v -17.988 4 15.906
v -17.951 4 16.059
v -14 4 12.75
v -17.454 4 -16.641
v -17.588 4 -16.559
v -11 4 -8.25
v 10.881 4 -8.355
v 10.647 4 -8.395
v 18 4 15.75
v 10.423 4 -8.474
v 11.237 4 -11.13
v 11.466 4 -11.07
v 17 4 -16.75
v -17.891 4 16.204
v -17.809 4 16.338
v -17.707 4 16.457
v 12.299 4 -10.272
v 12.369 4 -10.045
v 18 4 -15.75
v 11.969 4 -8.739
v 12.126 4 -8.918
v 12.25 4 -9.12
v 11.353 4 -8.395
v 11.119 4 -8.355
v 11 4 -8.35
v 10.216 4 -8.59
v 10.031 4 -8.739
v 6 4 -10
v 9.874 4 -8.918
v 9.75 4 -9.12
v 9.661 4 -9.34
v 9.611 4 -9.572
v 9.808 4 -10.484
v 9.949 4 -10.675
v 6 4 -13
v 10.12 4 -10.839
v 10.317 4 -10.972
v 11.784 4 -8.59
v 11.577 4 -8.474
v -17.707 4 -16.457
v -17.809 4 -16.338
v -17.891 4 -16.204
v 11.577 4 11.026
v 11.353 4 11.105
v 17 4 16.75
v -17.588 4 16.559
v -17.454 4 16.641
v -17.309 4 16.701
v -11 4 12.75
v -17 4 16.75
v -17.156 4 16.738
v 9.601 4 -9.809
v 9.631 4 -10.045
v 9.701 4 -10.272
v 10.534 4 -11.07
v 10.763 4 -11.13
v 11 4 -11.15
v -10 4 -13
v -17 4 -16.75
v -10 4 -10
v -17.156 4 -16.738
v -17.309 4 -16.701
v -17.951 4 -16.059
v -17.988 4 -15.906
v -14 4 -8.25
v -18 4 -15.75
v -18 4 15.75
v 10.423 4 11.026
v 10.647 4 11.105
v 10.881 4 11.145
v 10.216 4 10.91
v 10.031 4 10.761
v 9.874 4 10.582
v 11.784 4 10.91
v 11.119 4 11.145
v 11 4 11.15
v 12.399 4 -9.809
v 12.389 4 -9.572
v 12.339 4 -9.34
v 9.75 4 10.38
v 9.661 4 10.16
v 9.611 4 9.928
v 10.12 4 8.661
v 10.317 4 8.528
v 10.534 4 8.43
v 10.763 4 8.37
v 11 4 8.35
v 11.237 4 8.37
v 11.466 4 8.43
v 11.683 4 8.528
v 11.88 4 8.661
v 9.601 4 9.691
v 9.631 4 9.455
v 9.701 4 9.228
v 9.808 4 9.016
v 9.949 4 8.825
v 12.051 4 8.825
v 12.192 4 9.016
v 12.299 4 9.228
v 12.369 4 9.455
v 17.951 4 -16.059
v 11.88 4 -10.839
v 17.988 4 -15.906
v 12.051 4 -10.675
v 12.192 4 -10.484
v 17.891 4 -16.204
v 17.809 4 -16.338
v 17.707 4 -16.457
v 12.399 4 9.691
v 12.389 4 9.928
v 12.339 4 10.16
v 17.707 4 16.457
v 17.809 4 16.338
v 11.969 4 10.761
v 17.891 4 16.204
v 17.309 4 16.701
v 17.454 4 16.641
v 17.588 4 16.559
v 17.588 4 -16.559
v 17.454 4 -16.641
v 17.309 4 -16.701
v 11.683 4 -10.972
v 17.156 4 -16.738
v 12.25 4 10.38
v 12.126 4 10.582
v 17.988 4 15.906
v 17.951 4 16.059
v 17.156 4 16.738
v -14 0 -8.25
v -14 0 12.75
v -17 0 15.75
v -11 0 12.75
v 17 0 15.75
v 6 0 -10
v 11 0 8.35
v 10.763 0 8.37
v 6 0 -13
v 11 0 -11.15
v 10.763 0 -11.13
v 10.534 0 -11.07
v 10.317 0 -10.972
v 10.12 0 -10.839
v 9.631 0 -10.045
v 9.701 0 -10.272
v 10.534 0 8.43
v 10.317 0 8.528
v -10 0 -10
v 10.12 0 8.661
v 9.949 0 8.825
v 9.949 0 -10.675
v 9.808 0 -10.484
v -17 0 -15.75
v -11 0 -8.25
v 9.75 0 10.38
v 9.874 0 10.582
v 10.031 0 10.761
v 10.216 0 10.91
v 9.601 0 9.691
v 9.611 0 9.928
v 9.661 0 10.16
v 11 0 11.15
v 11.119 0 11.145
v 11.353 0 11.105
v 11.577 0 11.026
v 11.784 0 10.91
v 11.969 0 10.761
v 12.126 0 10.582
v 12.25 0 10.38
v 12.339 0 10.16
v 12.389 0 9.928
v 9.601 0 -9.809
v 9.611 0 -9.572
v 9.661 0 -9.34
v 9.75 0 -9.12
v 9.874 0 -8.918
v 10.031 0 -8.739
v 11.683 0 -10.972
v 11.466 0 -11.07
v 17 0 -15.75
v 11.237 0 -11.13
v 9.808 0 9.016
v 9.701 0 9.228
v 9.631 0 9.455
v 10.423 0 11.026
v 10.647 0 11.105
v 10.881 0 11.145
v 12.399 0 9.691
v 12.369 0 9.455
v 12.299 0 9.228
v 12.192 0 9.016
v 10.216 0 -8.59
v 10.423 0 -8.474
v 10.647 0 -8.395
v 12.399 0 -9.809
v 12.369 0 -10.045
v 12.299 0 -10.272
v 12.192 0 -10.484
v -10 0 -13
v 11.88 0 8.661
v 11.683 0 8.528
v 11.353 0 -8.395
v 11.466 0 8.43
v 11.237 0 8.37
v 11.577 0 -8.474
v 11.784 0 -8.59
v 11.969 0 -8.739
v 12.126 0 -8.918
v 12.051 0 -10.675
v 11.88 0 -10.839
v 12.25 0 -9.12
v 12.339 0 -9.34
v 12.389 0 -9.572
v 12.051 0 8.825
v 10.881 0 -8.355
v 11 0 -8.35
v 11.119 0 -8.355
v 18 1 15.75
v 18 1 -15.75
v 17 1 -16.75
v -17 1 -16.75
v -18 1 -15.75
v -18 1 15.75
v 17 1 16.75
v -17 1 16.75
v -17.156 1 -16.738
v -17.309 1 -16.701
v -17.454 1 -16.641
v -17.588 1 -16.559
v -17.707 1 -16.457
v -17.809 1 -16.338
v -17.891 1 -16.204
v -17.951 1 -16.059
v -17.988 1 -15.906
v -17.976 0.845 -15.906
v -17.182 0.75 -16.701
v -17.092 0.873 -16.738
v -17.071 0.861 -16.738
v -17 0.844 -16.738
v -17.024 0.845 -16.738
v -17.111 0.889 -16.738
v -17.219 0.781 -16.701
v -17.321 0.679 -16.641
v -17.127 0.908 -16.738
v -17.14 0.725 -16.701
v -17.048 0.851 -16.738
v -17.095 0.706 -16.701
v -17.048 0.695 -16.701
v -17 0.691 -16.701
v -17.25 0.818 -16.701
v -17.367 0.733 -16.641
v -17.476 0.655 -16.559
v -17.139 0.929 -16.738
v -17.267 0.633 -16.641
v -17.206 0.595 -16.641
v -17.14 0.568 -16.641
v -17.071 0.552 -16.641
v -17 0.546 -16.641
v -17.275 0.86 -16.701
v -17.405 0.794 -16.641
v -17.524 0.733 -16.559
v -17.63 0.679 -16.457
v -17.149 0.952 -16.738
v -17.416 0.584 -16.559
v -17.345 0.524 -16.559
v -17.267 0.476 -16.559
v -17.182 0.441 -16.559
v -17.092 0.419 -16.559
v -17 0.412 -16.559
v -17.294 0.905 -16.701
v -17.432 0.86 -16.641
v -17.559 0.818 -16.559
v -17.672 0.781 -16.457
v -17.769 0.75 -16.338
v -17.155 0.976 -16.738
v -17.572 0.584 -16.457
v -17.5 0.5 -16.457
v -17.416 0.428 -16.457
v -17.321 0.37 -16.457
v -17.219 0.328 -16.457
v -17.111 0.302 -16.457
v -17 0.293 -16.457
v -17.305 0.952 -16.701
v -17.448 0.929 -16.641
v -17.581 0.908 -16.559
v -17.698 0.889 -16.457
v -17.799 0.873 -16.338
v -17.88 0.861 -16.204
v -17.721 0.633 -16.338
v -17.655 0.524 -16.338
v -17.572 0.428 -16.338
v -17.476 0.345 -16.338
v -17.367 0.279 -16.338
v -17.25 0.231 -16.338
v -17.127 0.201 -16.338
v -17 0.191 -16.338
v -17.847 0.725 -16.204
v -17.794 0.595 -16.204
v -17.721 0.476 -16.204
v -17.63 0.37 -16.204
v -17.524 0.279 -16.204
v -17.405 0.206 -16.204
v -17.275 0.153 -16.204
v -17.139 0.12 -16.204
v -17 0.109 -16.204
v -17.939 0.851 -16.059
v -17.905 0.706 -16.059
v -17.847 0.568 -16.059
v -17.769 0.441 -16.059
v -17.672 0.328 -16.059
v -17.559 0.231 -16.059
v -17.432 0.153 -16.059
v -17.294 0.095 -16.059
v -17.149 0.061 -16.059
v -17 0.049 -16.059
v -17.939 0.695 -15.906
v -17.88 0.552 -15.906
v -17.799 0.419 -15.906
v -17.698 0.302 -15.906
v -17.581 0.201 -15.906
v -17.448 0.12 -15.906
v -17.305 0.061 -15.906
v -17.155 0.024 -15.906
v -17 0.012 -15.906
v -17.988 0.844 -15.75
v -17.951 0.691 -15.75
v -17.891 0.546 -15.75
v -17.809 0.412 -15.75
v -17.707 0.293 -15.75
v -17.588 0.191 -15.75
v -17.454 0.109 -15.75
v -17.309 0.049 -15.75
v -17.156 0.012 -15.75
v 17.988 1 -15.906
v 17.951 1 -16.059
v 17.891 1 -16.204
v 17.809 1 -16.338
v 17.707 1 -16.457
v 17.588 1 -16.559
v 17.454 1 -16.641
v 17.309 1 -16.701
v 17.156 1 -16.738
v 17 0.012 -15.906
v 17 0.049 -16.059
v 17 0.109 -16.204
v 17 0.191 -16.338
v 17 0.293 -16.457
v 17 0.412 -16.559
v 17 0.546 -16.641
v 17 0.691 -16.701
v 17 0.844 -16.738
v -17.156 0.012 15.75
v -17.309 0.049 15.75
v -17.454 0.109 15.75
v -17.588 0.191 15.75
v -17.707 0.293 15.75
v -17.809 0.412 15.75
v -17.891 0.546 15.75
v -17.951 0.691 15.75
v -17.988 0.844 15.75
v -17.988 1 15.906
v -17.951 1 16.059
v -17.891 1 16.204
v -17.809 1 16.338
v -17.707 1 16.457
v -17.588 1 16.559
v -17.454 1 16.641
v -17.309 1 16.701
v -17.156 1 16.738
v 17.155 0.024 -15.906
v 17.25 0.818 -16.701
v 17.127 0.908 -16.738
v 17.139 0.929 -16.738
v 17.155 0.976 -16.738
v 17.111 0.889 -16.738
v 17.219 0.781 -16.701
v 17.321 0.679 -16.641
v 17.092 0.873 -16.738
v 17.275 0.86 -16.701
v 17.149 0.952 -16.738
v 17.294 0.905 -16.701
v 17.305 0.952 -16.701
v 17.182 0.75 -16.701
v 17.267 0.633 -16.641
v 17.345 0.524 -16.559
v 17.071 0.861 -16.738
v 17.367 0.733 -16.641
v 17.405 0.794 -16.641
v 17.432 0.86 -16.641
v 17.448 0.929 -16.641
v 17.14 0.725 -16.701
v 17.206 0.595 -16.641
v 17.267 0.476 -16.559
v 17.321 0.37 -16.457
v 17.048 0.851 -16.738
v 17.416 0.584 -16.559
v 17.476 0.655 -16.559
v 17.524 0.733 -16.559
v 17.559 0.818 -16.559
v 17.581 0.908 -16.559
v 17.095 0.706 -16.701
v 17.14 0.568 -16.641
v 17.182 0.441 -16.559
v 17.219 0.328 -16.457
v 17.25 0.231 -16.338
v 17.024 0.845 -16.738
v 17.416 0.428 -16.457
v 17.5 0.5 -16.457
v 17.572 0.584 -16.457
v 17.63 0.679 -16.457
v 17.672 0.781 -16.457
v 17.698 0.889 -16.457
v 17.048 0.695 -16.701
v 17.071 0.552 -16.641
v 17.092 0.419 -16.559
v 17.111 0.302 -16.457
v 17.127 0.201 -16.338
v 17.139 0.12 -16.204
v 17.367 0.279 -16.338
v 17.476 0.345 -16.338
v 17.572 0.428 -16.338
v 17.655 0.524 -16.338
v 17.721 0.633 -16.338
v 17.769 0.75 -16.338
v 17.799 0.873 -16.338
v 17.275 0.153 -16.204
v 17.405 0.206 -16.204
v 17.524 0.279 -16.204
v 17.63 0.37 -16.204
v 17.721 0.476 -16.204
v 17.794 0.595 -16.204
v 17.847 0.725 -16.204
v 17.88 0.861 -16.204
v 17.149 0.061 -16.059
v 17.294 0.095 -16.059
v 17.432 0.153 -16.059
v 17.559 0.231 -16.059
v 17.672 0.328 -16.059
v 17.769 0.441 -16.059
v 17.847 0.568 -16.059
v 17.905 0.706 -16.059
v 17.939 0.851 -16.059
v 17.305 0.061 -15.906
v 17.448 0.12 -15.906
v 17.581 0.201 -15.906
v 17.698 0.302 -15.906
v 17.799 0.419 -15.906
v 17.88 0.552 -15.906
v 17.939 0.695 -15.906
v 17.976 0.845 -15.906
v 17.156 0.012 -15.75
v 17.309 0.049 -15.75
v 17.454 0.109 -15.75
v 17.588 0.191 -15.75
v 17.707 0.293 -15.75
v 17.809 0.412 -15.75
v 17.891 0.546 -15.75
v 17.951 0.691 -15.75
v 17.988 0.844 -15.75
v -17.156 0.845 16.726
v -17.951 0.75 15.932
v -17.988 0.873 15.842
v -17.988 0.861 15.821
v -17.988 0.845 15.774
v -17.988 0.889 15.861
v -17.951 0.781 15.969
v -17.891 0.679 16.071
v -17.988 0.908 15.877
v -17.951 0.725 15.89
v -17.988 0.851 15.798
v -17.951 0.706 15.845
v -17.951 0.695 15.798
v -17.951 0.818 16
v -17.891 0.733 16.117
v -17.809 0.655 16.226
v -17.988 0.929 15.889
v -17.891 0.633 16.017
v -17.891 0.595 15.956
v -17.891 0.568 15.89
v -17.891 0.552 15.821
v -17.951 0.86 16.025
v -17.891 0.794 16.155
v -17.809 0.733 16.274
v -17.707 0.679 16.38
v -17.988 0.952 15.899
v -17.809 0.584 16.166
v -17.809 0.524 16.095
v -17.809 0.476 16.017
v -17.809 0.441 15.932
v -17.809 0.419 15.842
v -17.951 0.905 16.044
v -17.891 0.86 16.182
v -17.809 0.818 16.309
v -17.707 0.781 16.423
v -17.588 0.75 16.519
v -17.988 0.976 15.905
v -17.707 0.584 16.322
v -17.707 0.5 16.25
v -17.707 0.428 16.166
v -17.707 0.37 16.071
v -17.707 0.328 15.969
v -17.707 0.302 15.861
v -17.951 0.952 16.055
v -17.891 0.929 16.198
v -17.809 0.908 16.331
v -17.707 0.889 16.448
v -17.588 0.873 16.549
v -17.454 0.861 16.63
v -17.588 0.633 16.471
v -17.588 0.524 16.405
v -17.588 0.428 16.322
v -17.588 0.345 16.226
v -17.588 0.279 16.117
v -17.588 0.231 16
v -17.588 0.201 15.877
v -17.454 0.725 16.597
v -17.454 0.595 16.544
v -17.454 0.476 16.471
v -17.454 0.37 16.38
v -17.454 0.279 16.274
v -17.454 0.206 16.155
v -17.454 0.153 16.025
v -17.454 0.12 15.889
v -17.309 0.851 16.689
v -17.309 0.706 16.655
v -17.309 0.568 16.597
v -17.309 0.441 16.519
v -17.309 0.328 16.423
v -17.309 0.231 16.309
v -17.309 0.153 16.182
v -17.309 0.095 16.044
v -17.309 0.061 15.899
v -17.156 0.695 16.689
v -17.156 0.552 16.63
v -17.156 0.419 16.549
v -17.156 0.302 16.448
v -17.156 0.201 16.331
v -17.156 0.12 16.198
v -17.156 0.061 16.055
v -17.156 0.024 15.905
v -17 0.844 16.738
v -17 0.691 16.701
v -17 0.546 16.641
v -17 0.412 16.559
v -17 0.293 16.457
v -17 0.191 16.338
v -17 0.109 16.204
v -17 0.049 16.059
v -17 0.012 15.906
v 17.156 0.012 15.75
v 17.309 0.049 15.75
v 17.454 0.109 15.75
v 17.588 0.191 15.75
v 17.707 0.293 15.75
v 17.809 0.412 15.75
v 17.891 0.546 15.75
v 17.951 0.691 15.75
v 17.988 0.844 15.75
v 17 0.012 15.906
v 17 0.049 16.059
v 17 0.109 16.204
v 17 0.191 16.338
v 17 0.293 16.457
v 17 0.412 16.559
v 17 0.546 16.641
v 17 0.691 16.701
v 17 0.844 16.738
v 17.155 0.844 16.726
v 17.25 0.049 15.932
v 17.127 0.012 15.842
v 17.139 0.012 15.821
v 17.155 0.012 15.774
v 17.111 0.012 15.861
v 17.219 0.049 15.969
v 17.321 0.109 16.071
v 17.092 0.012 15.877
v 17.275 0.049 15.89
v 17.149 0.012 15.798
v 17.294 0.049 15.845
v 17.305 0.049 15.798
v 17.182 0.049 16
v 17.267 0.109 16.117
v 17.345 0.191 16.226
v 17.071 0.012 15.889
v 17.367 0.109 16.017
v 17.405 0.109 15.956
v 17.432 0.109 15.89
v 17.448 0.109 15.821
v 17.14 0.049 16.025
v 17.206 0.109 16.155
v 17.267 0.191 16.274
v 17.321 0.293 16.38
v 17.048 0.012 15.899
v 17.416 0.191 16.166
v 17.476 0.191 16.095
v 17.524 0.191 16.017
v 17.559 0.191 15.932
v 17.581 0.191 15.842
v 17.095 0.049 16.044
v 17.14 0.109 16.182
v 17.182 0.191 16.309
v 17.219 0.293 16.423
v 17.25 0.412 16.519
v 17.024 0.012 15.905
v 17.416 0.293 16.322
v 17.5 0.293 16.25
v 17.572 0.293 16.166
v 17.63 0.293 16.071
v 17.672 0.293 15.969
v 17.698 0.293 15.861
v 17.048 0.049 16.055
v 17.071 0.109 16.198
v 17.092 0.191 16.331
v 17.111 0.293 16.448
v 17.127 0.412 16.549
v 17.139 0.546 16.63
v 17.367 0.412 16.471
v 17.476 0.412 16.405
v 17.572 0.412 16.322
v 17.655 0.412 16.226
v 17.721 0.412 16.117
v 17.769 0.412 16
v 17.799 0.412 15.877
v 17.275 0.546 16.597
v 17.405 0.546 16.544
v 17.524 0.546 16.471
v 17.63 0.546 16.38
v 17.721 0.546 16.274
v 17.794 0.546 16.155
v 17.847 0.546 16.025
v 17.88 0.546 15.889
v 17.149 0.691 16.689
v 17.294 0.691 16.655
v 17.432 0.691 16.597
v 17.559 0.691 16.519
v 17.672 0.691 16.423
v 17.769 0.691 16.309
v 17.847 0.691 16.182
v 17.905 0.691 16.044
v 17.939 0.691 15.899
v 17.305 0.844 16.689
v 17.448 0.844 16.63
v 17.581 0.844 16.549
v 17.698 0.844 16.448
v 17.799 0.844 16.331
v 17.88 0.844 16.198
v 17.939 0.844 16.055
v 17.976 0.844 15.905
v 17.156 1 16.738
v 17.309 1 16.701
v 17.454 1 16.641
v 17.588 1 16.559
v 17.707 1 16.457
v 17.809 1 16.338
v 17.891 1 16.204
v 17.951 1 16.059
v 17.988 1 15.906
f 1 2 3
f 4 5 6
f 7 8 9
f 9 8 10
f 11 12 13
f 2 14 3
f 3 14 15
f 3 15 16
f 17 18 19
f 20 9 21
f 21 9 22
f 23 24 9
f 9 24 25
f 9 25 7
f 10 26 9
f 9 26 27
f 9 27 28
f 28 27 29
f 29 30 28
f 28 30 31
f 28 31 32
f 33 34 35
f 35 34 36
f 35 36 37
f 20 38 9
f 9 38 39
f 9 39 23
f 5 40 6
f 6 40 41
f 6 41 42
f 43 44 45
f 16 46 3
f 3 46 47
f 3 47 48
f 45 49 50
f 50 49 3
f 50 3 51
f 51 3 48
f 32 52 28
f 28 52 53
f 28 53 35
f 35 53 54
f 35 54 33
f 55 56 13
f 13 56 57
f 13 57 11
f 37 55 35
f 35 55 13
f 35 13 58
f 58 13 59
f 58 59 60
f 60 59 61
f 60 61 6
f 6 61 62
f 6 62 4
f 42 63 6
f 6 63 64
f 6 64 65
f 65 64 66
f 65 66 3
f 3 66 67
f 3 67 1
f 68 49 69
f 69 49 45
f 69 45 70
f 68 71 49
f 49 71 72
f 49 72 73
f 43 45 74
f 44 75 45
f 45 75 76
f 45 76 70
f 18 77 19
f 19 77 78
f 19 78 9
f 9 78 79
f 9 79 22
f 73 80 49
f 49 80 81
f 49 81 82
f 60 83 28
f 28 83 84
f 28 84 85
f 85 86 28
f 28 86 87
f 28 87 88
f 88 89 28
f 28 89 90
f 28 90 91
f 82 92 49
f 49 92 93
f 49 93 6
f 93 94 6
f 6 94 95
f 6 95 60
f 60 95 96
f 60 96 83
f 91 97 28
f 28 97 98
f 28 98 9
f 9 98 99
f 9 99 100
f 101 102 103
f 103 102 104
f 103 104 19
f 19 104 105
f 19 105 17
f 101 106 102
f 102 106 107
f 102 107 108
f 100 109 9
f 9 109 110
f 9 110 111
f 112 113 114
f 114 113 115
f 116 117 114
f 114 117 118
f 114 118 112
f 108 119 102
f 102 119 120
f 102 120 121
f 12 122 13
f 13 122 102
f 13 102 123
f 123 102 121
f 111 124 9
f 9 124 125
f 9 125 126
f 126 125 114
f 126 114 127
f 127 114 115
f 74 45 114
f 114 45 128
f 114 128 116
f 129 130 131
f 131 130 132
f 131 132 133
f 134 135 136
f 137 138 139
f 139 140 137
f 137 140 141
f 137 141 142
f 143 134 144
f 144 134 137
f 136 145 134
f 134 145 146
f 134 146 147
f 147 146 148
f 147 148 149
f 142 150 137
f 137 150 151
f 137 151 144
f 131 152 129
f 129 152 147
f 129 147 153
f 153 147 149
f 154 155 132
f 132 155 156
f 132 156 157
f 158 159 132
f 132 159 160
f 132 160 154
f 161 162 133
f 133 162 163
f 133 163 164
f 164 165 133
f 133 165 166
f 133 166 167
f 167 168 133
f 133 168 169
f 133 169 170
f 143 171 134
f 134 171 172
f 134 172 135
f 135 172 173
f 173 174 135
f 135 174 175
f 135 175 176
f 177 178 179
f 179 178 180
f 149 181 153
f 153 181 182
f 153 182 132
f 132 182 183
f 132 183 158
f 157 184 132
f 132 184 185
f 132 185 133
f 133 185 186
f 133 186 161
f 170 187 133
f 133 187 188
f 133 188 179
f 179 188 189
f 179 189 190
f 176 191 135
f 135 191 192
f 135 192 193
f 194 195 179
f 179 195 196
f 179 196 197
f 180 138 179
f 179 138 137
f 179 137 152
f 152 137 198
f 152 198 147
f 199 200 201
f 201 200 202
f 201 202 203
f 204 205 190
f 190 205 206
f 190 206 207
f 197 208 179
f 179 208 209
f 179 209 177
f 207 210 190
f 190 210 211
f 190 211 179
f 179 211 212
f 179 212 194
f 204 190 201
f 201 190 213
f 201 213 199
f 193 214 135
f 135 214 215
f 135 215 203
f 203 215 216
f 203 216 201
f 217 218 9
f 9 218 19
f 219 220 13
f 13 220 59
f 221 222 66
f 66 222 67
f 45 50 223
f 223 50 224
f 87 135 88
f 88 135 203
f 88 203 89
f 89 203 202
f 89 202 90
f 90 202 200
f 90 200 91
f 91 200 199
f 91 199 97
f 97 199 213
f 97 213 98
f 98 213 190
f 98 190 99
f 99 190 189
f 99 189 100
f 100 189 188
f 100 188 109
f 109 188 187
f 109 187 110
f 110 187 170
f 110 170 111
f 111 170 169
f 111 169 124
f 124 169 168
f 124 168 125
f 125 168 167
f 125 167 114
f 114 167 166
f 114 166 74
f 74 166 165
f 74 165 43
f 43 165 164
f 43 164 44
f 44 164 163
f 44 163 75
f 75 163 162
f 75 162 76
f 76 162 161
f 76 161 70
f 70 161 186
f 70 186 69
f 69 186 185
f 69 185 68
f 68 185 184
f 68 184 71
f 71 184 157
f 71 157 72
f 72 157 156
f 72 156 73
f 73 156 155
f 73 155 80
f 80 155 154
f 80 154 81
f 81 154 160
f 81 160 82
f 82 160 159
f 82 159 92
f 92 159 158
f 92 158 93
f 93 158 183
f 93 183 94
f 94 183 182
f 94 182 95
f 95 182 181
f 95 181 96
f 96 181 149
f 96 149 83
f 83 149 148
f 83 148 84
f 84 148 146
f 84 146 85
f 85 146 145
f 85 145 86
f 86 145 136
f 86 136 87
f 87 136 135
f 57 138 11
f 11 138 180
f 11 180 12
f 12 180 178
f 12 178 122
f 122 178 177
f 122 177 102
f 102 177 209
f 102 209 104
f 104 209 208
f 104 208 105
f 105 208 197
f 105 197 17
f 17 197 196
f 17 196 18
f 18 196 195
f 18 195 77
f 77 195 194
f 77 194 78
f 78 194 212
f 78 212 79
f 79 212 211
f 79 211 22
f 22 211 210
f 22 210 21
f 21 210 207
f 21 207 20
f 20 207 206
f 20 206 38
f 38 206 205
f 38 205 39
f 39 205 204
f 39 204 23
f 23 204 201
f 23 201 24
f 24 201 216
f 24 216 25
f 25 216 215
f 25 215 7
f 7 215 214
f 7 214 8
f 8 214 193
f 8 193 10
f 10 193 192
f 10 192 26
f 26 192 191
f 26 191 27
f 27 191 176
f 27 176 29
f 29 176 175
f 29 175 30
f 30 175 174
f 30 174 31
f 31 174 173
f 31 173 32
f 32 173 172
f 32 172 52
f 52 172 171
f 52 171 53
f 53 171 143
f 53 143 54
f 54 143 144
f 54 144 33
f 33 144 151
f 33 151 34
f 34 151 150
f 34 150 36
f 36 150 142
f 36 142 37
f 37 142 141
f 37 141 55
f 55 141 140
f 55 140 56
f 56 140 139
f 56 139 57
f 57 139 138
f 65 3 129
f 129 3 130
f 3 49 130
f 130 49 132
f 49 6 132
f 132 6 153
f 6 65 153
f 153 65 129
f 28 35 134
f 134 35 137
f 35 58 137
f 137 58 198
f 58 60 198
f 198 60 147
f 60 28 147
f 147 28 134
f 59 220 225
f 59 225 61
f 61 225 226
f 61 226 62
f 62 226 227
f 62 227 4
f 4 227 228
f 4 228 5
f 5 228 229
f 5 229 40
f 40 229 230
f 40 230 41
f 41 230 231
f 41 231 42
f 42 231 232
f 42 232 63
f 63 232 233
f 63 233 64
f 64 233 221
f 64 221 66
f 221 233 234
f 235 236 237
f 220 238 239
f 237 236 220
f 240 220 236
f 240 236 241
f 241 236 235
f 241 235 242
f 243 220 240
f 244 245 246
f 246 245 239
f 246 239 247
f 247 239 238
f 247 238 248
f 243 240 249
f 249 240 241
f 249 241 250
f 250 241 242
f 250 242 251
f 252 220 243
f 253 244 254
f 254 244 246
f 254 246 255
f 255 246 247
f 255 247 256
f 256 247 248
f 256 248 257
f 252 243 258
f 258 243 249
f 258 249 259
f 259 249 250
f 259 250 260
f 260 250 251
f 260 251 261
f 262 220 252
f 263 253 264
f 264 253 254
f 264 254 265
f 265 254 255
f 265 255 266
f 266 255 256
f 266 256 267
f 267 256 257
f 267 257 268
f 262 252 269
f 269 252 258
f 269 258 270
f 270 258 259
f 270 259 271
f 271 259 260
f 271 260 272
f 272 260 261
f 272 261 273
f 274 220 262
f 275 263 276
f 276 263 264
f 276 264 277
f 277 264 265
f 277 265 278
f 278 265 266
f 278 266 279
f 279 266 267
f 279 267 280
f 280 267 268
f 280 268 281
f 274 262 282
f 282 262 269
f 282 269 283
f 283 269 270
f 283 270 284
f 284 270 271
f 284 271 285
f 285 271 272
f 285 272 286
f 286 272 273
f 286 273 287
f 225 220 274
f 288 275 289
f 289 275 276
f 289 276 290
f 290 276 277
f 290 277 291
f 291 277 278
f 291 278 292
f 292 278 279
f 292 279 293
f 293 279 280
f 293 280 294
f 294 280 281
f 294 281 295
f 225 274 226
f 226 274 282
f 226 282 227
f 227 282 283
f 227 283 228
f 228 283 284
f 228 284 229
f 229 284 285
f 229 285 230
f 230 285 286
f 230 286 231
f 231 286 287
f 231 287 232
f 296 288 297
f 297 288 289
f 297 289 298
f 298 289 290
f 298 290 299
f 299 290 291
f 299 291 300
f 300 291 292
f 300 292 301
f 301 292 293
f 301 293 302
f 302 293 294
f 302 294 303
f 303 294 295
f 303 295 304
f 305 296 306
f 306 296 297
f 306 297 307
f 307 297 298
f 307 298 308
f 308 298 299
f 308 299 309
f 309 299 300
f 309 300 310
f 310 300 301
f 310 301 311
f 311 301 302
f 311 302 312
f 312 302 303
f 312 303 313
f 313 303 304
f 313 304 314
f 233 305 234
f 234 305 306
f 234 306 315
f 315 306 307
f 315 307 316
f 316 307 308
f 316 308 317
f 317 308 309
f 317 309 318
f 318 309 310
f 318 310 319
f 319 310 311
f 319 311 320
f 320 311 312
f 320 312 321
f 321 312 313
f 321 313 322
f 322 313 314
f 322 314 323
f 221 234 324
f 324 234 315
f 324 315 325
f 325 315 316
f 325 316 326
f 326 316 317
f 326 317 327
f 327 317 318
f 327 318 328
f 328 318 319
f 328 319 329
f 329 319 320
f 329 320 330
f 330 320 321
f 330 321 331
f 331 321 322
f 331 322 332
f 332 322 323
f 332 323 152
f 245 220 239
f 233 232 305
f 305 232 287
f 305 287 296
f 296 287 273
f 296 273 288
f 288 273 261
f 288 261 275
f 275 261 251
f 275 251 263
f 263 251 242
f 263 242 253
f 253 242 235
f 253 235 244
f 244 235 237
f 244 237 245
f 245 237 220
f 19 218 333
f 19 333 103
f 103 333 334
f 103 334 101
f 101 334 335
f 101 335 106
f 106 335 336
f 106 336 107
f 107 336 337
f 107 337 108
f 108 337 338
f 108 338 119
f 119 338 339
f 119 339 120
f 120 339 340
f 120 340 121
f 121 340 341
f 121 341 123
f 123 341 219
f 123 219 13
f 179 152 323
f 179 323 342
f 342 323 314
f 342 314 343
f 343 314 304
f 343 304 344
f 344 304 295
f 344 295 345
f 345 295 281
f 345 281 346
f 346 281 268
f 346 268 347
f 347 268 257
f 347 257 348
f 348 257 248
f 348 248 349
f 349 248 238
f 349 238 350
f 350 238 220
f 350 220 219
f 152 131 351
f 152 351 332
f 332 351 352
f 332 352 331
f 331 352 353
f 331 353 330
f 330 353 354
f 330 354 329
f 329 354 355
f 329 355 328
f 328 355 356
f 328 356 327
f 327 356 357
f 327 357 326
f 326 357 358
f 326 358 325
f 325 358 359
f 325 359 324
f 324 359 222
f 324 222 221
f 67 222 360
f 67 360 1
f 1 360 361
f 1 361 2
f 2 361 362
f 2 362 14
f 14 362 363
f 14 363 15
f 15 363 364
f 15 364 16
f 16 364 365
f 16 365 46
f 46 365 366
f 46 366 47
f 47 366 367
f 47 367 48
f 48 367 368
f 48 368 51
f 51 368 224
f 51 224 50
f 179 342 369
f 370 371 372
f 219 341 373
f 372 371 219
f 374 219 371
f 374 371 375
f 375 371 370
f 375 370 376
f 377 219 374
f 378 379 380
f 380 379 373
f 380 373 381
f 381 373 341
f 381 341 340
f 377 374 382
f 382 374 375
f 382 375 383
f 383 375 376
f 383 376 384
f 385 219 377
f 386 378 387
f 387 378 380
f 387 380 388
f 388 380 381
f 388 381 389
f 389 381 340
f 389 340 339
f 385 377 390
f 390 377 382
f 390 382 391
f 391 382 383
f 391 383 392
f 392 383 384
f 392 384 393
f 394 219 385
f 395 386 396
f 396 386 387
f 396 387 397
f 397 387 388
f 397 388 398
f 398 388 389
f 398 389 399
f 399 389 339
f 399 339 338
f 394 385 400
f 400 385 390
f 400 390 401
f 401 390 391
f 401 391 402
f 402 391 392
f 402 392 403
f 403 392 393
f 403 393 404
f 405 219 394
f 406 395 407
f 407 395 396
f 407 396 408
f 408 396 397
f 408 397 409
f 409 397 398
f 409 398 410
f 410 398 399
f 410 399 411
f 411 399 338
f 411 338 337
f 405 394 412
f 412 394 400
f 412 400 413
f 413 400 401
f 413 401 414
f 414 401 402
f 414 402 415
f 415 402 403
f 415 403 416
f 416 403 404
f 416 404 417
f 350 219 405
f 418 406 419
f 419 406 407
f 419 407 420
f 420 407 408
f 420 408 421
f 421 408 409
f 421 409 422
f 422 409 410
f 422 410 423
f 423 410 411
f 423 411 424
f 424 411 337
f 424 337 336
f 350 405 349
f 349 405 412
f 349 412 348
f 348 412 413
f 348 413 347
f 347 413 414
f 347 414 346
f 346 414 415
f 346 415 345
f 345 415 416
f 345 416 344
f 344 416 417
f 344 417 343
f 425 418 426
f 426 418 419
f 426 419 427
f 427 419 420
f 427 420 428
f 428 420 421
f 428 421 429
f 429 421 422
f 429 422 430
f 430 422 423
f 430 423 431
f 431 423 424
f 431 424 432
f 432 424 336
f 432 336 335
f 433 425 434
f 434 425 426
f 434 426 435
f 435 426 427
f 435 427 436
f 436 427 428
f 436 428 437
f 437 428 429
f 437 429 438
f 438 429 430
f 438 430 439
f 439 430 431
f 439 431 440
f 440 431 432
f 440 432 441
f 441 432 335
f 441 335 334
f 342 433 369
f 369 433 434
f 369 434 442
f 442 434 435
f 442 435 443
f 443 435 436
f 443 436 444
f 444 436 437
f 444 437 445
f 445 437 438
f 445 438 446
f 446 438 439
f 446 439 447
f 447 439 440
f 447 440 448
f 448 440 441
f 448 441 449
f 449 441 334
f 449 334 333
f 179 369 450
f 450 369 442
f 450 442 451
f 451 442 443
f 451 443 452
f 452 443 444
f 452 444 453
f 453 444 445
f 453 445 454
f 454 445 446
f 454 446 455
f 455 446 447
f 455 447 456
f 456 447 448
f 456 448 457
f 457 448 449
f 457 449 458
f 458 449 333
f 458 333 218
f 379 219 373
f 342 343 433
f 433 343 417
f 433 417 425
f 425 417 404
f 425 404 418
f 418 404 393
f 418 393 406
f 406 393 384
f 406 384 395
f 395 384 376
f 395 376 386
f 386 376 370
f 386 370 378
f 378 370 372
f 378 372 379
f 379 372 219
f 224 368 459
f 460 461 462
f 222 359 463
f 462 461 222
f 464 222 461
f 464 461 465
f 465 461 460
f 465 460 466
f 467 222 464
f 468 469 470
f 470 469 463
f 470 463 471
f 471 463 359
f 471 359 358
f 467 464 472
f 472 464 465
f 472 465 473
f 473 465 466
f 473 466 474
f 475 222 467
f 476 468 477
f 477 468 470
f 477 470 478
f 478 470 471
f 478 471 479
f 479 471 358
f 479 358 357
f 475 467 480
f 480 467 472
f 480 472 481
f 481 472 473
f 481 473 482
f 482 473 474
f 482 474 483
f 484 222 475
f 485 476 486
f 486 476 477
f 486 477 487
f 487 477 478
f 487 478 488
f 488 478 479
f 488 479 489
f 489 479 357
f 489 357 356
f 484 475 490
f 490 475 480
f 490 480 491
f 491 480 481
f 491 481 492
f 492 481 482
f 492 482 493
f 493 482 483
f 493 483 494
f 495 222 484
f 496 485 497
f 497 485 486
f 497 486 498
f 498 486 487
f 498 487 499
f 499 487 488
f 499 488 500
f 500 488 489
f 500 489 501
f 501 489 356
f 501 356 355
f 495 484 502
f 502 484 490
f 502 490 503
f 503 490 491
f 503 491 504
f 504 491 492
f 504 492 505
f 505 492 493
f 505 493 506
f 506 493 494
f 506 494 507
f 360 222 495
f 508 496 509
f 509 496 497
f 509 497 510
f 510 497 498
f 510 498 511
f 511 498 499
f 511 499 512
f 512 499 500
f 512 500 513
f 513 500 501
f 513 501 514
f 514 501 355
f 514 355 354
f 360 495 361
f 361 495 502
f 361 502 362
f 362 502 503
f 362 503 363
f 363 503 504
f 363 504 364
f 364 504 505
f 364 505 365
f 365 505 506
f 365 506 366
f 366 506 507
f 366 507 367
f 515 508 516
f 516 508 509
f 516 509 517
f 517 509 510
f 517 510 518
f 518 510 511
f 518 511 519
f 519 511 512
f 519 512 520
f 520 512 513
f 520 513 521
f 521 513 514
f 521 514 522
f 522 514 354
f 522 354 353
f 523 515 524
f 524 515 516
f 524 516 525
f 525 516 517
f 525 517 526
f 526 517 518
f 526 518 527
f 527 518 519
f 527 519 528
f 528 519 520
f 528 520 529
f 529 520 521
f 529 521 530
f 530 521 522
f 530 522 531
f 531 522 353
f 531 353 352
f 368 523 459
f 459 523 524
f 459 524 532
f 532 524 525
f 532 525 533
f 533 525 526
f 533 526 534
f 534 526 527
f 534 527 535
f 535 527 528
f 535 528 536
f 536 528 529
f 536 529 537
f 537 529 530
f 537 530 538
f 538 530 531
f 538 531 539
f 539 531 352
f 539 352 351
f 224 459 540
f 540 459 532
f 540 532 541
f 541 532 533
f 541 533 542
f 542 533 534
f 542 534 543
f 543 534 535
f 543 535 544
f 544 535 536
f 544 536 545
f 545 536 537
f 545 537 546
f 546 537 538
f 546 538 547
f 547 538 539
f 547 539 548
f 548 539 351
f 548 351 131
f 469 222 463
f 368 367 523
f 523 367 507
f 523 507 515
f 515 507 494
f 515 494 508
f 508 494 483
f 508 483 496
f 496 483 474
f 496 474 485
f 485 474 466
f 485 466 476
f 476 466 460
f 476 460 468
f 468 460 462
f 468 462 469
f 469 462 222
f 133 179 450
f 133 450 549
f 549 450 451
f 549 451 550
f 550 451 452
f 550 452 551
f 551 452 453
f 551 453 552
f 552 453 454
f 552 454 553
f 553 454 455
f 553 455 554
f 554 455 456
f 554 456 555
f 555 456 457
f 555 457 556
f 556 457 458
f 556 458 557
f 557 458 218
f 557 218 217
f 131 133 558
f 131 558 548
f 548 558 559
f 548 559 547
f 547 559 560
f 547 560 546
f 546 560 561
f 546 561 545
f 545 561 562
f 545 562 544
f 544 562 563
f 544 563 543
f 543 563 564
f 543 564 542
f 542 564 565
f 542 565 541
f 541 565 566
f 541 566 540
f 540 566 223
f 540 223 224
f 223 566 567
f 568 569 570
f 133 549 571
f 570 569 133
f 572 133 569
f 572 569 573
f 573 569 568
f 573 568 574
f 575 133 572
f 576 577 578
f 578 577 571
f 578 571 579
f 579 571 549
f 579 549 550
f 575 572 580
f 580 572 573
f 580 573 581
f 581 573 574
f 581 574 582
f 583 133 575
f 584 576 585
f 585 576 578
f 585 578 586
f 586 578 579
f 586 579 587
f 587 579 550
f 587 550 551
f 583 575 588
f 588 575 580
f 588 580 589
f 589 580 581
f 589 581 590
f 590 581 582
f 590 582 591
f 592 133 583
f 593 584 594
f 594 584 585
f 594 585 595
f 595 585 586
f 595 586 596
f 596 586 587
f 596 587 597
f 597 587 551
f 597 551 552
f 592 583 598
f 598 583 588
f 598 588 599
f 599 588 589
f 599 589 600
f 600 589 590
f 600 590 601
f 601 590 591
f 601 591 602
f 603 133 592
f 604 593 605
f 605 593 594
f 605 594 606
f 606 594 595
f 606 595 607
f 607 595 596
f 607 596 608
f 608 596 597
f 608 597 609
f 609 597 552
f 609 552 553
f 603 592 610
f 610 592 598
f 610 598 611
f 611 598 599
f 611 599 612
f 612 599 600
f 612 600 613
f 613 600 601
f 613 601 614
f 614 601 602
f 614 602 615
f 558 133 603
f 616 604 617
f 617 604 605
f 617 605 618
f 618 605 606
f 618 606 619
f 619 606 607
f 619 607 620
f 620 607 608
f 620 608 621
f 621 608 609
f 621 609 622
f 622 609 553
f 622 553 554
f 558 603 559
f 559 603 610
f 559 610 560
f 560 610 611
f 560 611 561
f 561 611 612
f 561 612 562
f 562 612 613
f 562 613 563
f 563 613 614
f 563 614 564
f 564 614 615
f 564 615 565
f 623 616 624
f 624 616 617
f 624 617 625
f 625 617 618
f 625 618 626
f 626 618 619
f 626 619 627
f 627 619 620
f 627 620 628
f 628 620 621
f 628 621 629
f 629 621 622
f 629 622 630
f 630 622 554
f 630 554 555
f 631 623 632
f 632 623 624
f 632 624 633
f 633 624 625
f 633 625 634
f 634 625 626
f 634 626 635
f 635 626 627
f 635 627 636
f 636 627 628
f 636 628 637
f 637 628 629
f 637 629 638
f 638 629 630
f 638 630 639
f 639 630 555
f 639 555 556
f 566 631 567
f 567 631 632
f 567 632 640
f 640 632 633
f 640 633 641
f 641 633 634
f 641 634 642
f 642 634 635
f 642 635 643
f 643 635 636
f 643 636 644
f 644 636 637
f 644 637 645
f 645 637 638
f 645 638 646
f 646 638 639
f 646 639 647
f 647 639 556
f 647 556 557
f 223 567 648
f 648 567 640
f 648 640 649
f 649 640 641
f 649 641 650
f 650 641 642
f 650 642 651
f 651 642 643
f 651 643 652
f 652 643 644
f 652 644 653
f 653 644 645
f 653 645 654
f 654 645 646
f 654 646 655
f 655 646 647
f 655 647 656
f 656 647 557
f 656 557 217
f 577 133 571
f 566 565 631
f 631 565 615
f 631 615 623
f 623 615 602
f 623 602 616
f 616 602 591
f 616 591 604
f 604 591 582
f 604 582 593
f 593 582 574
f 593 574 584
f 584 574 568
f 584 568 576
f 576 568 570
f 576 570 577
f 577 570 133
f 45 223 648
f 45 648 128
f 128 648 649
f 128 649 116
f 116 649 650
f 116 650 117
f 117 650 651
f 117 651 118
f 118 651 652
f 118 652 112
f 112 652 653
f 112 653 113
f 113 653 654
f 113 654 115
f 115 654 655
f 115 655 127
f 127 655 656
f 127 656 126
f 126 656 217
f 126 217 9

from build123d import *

# Parameters (mm, degrees)
SKETCH1_W            = 36
SKETCH1_H            = 33.5
SKETCH1_R            = 1.4
SKETCH1_W_2          = 3
SKETCH1_H_2          = 21
SKETCH1_W_3          = 16
SKETCH1_H_3          = 3
BASE_DEPTH           = 4
F_1MM_EDGE_FILLETS_R = 1


with BuildPart() as part:
    # Sketch1 → Base (new body)
    with BuildSketch(Plane(origin=(0, 0, 0), x_dir=(1, 0, 0), z_dir=(0, 1, 0))):
        Rectangle(SKETCH1_W, SKETCH1_H)
        with Locations(Location((11, -9.75, 0), (0, 0, 270))):
            Circle(SKETCH1_R, mode=Mode.SUBTRACT)
        with Locations(Location((11, 9.75, 0), (0, 0, 270))):
            Circle(SKETCH1_R, mode=Mode.SUBTRACT)
        with Locations((-12.5, -2.25)):
            Rectangle(SKETCH1_W_2, SKETCH1_H_2, mode=Mode.SUBTRACT)
        with Locations((-2, 11.5)):
            Rectangle(SKETCH1_W_3, SKETCH1_H_3, mode=Mode.SUBTRACT)
    extrude(amount=BASE_DEPTH)

    # 1mm Edge Fillets
    f_1mm_edge_fillets_edges = [part.edges().sort_by_distance(p)[0] for p in [
        (0, 0, 16.75),
        (-18, 0, 0),
        (0, 0, -16.75),
        (18, 0, 0),
        (18, 2, 16.75),
        (-18, 2, 16.75),
        (-18, 2, -16.75),
        (18, 2, -16.75),
    ]]
    fillet(f_1mm_edge_fillets_edges, radius=F_1MM_EDGE_FILLETS_R)


solid = part.part
